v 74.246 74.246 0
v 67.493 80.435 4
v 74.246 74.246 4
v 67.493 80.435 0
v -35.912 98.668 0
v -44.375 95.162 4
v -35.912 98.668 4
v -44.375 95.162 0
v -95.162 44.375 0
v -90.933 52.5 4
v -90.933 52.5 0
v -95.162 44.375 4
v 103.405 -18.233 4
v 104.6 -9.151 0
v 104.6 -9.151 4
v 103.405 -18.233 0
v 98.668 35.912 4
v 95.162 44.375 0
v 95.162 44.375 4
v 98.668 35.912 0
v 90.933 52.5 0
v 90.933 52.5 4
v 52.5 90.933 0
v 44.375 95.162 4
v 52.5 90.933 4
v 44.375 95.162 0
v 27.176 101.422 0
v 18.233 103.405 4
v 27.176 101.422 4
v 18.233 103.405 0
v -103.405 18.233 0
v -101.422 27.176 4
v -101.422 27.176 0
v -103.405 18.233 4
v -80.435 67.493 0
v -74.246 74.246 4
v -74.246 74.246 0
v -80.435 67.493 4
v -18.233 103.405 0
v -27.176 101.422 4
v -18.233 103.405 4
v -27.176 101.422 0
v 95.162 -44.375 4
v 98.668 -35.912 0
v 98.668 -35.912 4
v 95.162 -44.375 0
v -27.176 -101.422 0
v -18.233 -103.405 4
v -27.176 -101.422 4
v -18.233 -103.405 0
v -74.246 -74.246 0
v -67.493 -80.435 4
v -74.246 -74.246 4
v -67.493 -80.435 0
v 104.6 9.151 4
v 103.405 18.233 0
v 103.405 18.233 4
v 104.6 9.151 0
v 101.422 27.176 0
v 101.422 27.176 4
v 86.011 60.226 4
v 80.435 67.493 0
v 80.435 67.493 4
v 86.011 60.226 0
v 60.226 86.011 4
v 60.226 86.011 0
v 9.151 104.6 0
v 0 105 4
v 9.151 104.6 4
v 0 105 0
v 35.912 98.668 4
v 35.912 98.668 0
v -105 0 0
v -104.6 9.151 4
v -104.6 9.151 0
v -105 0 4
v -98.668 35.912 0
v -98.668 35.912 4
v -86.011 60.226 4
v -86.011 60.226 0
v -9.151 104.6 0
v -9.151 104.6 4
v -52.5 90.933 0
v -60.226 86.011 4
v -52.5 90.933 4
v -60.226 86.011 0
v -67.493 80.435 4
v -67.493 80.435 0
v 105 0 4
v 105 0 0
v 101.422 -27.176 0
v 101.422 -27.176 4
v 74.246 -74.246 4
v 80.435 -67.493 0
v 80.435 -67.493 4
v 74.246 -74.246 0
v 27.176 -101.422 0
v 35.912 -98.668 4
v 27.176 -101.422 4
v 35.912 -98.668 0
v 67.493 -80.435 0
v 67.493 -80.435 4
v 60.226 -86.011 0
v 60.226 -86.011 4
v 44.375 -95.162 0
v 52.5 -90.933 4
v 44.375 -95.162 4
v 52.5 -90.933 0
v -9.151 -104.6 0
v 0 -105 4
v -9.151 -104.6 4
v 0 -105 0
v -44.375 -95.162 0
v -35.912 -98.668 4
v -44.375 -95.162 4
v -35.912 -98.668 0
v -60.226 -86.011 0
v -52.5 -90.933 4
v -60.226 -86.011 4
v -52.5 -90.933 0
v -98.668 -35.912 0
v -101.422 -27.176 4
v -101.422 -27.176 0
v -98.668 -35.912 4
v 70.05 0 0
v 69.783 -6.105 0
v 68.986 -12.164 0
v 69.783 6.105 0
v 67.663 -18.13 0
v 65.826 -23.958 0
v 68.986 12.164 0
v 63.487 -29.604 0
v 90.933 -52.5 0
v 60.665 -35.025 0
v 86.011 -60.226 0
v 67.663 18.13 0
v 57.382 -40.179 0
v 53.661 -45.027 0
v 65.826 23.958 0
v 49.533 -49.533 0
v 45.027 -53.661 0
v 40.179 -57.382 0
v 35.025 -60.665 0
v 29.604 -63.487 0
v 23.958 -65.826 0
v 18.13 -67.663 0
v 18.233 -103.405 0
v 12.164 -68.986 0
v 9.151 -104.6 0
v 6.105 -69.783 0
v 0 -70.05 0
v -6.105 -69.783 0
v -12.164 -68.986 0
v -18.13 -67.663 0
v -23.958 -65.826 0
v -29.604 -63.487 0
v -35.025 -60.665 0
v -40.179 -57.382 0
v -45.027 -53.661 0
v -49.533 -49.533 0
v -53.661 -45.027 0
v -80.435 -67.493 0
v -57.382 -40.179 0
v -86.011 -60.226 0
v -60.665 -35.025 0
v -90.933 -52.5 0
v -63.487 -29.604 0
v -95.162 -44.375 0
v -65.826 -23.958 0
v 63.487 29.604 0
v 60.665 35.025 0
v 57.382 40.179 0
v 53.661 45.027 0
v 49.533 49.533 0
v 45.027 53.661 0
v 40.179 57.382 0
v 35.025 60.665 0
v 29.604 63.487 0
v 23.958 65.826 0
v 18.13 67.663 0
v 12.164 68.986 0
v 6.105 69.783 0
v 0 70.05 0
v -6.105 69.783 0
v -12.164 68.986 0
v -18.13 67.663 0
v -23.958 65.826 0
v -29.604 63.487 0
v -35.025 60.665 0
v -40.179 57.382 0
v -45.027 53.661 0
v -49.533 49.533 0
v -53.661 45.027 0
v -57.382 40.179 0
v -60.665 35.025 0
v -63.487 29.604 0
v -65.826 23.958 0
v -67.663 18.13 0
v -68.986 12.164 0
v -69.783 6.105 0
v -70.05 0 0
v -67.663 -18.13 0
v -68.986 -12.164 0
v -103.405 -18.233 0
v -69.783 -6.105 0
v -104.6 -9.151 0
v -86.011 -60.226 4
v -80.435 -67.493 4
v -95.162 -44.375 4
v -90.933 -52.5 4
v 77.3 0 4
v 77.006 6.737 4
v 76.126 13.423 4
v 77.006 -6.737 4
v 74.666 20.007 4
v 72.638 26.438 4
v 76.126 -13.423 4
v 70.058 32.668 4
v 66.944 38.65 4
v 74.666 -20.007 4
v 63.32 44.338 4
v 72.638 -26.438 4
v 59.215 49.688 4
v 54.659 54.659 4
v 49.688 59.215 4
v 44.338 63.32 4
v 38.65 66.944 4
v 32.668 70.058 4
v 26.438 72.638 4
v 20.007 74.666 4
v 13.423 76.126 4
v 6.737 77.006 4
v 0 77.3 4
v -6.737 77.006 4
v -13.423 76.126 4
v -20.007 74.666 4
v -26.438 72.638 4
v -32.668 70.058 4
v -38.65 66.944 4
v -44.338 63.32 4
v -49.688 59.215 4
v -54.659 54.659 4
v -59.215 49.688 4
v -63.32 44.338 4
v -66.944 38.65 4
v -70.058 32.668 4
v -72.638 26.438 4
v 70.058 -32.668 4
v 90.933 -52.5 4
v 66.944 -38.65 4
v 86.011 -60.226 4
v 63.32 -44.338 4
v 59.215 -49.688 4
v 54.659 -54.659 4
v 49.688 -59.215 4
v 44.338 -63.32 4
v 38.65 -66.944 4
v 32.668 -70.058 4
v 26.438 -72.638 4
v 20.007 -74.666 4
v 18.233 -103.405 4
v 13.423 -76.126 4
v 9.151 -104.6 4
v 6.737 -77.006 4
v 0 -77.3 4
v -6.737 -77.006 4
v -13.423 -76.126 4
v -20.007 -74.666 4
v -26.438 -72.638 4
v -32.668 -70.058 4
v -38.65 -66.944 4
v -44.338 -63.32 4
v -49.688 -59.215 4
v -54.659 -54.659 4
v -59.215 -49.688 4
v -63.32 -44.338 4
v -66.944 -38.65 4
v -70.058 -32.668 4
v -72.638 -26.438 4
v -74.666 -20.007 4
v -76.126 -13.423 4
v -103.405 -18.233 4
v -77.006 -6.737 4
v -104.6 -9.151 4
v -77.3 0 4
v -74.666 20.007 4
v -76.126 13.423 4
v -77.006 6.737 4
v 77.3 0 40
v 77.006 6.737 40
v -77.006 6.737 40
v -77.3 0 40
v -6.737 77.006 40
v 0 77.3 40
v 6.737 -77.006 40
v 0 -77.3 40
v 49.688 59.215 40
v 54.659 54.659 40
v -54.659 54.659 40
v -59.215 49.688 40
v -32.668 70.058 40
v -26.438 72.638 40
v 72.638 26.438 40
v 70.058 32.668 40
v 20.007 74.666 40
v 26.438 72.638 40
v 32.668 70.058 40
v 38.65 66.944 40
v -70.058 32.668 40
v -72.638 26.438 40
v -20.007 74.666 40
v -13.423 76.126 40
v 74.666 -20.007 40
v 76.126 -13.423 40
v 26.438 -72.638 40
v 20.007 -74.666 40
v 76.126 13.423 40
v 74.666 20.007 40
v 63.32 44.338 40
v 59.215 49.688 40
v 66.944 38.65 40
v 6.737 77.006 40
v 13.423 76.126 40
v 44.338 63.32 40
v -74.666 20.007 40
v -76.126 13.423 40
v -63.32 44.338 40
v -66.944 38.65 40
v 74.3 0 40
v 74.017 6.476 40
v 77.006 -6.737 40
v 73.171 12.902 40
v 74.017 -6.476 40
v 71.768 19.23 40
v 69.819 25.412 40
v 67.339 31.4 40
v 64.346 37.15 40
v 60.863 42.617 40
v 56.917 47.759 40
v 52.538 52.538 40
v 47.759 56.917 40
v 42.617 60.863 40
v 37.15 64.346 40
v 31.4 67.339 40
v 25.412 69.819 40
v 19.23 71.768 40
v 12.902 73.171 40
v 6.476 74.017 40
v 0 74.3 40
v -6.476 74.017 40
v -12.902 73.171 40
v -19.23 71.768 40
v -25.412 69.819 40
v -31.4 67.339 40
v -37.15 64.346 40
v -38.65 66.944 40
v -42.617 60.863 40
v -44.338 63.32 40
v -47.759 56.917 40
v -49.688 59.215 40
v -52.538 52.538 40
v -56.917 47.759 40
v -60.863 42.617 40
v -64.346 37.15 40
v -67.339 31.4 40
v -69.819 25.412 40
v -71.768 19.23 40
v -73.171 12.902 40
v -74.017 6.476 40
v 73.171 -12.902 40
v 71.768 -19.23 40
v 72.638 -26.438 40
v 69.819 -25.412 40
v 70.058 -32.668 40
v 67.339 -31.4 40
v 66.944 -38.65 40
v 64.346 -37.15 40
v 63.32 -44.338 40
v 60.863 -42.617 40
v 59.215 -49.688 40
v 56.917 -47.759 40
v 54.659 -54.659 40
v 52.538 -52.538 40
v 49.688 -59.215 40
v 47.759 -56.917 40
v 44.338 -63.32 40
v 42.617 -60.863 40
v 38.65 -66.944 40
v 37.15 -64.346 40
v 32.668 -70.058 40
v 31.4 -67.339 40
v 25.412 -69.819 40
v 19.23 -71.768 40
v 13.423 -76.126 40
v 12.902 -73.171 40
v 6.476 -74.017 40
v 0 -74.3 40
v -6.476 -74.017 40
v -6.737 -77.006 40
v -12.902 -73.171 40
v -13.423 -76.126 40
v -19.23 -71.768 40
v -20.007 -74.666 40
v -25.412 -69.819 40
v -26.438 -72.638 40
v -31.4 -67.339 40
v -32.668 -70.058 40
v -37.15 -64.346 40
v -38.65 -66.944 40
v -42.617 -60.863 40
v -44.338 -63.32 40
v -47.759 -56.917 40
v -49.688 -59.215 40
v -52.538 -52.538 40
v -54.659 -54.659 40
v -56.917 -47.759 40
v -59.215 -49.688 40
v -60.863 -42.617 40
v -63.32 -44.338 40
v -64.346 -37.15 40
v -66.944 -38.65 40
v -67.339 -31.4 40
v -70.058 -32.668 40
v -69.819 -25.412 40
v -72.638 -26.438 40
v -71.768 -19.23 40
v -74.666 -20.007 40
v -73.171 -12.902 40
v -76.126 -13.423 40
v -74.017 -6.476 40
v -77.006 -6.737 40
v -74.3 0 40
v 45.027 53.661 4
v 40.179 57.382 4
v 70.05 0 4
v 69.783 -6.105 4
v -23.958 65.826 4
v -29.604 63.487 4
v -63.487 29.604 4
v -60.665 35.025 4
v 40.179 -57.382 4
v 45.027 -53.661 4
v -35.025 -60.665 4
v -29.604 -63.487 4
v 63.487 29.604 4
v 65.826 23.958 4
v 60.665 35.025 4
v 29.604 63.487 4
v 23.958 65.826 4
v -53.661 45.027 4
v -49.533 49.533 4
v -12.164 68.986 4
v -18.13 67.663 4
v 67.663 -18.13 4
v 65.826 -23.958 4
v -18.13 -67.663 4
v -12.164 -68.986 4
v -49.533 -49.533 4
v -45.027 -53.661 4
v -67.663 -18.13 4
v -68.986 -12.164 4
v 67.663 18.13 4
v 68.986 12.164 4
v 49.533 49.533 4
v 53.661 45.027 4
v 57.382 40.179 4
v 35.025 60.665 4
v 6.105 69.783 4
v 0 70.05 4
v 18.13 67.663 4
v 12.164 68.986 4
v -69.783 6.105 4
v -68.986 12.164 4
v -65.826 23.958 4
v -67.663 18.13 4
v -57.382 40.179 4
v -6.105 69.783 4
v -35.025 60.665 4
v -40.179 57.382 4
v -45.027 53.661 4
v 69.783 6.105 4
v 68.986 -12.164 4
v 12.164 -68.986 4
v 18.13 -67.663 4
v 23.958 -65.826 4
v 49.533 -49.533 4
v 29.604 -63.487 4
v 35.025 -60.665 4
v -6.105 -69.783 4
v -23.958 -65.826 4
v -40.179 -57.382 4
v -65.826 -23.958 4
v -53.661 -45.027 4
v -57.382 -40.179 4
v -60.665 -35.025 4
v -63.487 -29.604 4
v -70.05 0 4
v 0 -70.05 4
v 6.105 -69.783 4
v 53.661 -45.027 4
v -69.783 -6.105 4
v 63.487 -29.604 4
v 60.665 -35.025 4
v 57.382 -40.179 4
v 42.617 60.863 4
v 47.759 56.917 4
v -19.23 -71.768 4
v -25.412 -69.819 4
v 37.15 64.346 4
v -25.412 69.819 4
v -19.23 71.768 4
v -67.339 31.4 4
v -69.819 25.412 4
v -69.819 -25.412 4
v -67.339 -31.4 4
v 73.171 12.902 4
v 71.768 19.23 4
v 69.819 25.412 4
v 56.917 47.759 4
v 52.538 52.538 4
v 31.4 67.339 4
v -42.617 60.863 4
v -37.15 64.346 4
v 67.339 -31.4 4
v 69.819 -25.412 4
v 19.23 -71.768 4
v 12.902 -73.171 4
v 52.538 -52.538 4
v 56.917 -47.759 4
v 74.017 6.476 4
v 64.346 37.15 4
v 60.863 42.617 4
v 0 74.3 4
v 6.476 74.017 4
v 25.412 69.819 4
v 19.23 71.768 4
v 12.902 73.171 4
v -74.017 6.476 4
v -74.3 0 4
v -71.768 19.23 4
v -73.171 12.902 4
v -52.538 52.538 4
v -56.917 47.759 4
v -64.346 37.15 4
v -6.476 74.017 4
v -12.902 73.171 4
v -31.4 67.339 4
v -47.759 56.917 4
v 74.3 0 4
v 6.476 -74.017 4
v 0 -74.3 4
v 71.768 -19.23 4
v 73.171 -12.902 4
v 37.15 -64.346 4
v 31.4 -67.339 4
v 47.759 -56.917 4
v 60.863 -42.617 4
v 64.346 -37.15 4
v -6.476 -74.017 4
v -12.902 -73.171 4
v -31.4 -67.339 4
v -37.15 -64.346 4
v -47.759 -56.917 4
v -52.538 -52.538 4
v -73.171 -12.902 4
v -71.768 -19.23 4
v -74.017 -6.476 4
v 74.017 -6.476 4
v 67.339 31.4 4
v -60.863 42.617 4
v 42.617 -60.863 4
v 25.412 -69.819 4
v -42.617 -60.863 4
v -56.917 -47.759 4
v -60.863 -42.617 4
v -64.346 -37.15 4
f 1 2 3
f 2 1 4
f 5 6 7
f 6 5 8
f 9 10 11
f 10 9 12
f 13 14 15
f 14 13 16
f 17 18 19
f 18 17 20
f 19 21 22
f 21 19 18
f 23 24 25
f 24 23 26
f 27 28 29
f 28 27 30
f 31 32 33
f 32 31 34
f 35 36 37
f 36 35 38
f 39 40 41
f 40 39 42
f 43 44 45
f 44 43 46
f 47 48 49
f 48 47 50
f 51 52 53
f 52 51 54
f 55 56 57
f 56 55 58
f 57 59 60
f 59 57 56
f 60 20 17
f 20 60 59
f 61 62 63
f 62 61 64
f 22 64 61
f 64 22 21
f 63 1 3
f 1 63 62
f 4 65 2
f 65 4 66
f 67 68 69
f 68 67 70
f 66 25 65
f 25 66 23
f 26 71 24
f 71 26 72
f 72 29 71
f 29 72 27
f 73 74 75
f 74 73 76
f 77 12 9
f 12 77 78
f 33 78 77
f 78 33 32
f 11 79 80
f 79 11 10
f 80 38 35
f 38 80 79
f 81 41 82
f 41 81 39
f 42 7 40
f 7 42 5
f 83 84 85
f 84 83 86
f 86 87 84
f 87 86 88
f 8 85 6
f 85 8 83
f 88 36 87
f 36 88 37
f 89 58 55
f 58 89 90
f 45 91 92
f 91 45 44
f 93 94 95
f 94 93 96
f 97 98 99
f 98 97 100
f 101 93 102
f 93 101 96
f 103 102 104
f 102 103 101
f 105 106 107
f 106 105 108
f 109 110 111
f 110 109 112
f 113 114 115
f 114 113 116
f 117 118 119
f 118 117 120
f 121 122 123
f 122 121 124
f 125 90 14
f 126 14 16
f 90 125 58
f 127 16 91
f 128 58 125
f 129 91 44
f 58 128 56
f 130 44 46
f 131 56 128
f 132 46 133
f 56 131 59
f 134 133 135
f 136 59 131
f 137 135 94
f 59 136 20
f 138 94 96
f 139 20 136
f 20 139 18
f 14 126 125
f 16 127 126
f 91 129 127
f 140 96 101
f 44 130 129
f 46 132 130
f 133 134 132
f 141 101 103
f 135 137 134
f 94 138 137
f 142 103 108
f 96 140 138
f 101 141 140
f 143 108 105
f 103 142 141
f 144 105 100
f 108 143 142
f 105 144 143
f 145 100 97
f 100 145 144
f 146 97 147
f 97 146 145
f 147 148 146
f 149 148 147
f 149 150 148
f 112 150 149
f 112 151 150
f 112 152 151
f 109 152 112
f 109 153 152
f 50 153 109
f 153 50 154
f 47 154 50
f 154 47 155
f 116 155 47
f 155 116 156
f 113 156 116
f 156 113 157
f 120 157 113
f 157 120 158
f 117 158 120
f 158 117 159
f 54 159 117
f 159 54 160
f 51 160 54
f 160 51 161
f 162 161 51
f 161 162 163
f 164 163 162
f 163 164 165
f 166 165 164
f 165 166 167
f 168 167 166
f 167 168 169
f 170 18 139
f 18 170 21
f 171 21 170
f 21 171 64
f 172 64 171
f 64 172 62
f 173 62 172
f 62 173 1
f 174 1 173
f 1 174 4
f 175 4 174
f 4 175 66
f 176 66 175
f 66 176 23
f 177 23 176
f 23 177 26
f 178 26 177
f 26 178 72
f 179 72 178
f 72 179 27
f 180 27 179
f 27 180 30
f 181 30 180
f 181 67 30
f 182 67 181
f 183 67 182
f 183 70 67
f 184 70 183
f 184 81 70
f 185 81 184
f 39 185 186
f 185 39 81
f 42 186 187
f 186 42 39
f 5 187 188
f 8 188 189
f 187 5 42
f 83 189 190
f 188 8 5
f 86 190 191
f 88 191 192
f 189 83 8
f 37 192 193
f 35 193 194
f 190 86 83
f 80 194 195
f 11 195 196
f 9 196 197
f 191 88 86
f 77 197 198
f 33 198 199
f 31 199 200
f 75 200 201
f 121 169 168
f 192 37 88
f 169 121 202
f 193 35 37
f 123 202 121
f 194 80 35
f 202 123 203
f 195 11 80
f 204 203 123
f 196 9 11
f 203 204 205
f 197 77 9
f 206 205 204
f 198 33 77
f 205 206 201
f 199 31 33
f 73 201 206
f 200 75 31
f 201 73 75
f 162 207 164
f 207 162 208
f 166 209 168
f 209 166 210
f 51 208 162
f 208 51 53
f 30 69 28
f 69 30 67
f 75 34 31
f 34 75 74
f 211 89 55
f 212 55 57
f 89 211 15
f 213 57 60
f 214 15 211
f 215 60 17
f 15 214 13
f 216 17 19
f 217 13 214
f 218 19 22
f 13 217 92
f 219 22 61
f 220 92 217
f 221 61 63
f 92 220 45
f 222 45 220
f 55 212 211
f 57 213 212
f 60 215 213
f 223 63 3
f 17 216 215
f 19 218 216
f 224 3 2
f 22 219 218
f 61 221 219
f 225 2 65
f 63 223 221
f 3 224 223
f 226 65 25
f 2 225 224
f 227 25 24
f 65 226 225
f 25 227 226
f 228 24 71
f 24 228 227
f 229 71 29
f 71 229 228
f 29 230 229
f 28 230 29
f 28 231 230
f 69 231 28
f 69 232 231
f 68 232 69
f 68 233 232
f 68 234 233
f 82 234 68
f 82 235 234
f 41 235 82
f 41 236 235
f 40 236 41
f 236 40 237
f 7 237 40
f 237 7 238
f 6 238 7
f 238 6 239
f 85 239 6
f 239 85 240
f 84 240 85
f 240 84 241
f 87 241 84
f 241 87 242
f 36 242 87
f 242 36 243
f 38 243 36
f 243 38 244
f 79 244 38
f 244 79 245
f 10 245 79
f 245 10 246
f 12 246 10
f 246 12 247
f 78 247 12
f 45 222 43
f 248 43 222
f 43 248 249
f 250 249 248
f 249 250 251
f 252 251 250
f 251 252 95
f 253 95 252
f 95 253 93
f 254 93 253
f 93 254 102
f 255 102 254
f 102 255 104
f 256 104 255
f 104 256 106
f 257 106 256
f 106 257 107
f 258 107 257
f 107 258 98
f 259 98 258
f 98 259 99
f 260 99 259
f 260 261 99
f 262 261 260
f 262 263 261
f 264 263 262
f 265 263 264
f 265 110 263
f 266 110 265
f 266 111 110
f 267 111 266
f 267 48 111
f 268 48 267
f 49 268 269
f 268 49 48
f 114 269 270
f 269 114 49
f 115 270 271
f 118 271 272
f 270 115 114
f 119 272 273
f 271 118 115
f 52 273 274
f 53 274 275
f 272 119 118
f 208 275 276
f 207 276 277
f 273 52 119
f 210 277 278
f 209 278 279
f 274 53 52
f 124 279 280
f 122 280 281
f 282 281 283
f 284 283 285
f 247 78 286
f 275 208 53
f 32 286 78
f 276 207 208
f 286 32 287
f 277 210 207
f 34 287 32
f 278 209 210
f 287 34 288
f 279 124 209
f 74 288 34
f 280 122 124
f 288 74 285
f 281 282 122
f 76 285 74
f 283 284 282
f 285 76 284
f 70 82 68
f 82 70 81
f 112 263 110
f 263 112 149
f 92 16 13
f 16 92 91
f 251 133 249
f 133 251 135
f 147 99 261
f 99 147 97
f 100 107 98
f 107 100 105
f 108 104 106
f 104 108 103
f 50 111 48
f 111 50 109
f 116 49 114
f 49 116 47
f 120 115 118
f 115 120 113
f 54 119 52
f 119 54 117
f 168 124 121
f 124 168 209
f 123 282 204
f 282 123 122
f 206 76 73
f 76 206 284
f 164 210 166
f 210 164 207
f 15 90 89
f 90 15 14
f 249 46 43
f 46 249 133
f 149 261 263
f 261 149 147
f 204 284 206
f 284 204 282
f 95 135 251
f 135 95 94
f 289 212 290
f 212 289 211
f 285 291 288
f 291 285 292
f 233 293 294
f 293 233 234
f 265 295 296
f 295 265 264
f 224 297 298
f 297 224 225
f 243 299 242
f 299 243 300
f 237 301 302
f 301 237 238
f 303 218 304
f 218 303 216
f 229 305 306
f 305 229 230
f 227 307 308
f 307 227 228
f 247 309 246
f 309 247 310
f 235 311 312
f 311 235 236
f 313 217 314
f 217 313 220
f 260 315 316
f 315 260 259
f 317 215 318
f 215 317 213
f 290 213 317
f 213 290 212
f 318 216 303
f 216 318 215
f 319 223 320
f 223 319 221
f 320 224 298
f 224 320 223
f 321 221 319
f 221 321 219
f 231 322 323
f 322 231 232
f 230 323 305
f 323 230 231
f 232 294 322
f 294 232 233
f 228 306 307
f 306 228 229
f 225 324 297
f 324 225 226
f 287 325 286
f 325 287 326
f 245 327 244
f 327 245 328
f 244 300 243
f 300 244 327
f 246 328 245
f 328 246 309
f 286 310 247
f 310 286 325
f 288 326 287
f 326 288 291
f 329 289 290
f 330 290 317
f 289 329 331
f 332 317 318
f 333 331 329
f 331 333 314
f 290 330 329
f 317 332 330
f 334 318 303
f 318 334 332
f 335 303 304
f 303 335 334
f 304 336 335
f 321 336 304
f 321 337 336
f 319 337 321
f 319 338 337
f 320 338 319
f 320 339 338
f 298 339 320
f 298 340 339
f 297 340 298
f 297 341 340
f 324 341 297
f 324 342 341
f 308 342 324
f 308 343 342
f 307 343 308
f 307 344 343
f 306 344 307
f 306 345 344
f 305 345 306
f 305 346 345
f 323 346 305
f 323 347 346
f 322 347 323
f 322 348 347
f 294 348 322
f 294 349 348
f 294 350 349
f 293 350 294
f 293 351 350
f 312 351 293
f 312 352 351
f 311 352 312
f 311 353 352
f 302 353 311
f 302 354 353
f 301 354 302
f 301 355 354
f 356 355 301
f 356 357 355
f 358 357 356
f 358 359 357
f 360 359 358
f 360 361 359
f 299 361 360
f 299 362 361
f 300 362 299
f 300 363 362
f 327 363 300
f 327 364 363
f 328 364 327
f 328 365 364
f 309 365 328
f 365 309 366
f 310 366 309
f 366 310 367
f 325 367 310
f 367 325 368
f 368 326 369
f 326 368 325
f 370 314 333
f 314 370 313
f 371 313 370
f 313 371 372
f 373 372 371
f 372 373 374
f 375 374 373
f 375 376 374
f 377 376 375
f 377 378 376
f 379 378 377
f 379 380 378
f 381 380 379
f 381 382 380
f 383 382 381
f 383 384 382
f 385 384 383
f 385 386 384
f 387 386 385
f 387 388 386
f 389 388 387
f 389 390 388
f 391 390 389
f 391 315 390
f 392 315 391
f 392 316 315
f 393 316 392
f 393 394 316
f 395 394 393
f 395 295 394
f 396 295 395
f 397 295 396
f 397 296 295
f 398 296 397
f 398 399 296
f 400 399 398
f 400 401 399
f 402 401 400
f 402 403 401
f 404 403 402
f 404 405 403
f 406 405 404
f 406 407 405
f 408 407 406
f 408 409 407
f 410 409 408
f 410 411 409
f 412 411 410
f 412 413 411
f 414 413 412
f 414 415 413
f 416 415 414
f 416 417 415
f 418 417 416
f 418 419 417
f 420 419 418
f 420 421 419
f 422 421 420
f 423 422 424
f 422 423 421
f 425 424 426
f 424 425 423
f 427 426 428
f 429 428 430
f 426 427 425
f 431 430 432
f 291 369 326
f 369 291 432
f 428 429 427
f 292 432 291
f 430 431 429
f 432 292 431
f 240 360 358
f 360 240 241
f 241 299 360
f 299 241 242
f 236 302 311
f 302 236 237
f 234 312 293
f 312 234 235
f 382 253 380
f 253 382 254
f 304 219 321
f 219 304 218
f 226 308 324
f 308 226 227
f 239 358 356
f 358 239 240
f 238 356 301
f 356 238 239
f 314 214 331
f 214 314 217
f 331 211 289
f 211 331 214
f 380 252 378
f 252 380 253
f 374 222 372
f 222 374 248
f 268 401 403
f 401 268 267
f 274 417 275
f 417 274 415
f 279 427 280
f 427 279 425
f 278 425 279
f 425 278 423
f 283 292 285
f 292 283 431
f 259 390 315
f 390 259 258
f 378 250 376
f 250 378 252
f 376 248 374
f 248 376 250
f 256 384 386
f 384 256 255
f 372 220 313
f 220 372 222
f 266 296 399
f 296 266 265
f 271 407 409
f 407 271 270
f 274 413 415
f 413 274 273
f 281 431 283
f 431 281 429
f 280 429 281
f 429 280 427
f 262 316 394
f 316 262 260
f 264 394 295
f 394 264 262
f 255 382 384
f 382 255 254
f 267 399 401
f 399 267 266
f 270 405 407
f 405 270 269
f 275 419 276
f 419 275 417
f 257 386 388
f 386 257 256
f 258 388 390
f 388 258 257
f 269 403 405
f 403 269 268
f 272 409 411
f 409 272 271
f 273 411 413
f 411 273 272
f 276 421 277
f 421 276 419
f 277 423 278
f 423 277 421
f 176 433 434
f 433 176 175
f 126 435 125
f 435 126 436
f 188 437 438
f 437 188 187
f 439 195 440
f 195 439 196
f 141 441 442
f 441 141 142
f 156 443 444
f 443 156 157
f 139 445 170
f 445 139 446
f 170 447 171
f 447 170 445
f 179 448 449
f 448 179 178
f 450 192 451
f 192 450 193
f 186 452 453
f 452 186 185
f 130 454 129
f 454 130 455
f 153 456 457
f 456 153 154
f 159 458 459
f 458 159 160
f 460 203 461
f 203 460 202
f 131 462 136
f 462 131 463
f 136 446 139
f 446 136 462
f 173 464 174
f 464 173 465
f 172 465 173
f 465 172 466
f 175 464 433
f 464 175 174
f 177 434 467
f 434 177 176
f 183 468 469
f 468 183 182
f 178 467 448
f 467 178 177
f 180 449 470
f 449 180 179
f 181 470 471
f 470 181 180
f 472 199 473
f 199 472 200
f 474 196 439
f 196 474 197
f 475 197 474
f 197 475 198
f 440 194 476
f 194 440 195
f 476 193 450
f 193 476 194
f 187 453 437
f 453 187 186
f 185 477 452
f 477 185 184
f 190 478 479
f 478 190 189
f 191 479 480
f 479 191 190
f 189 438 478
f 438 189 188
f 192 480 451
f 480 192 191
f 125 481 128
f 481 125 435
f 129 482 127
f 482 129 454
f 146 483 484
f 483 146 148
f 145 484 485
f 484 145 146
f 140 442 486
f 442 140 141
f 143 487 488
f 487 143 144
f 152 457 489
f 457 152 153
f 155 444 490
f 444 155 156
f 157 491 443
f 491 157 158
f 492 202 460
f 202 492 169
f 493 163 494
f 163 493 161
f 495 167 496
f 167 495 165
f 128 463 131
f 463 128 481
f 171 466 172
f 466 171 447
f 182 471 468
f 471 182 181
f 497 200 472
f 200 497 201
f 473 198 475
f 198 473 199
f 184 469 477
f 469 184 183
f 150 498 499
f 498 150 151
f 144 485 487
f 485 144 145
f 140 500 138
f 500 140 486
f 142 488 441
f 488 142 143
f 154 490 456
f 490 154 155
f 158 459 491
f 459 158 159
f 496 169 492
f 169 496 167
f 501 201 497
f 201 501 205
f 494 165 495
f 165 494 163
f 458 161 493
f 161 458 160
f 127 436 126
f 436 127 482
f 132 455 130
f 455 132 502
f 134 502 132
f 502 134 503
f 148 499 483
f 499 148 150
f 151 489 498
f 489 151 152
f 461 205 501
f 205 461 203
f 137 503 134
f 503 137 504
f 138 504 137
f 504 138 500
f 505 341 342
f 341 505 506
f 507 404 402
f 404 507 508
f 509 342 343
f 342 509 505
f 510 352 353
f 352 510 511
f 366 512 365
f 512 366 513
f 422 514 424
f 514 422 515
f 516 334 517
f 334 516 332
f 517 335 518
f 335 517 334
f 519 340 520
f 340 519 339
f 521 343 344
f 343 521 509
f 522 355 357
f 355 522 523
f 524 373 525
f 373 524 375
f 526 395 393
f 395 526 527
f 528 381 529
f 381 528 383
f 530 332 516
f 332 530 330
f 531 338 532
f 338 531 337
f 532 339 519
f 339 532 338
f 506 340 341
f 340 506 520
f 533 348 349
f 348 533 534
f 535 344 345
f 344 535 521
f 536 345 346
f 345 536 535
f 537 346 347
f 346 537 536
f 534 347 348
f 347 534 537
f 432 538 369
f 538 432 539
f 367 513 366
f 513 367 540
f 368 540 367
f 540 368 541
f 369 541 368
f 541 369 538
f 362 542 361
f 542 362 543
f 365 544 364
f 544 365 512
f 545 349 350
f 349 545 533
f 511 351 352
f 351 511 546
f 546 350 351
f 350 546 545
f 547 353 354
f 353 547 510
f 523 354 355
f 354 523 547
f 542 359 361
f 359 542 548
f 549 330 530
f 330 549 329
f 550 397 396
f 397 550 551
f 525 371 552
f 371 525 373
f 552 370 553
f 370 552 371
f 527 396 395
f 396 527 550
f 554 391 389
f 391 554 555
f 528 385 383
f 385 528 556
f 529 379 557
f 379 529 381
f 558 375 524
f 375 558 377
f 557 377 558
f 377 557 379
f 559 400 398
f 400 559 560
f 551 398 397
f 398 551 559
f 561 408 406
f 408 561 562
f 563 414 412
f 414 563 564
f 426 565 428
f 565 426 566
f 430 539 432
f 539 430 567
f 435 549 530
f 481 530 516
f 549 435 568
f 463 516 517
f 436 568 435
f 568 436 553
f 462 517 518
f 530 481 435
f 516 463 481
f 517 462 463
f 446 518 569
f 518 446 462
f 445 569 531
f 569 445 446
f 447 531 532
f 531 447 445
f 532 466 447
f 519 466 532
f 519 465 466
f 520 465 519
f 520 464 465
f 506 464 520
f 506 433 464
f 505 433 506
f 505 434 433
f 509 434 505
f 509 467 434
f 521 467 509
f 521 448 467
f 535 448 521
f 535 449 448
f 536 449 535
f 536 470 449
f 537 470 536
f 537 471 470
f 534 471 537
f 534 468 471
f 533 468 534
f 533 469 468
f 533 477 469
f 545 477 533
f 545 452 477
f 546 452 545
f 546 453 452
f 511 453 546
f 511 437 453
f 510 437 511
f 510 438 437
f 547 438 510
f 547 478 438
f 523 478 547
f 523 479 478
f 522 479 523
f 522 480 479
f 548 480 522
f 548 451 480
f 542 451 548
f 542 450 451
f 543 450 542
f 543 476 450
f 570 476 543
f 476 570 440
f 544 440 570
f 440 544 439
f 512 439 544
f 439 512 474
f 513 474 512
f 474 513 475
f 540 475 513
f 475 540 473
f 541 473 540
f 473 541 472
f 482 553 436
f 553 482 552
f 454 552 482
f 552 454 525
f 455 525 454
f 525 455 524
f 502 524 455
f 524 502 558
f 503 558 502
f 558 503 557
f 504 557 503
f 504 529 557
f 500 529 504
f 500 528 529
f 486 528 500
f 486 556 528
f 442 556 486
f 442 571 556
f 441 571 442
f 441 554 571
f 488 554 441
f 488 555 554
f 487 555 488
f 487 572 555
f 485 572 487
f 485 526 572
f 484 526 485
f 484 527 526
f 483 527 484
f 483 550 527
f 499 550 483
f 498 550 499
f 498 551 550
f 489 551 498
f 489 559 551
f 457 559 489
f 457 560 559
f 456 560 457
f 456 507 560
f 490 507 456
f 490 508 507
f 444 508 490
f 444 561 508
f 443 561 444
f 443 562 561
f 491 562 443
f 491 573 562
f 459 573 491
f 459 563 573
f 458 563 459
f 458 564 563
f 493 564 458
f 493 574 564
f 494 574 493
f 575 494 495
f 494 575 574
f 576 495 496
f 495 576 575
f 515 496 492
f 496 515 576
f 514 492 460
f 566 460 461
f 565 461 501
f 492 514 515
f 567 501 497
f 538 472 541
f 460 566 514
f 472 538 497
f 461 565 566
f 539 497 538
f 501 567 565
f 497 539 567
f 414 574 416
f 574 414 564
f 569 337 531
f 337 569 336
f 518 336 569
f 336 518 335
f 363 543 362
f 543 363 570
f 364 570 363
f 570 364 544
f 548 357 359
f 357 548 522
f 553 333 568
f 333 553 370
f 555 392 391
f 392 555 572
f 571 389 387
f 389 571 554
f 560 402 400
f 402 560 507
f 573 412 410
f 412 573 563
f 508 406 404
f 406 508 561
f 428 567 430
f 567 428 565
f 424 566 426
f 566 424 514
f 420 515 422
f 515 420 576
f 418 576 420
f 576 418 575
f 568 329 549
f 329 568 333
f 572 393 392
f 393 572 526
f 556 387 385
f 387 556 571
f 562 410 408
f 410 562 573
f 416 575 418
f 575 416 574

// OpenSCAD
// P13 — Fan socket. Base flange on the bed. PLA, 3 walls.
// Needs lfh_v1_reference.scad in the same folder.
include <lfh_v1_reference.scad>
part = "SOCKET";
pose = "print";
